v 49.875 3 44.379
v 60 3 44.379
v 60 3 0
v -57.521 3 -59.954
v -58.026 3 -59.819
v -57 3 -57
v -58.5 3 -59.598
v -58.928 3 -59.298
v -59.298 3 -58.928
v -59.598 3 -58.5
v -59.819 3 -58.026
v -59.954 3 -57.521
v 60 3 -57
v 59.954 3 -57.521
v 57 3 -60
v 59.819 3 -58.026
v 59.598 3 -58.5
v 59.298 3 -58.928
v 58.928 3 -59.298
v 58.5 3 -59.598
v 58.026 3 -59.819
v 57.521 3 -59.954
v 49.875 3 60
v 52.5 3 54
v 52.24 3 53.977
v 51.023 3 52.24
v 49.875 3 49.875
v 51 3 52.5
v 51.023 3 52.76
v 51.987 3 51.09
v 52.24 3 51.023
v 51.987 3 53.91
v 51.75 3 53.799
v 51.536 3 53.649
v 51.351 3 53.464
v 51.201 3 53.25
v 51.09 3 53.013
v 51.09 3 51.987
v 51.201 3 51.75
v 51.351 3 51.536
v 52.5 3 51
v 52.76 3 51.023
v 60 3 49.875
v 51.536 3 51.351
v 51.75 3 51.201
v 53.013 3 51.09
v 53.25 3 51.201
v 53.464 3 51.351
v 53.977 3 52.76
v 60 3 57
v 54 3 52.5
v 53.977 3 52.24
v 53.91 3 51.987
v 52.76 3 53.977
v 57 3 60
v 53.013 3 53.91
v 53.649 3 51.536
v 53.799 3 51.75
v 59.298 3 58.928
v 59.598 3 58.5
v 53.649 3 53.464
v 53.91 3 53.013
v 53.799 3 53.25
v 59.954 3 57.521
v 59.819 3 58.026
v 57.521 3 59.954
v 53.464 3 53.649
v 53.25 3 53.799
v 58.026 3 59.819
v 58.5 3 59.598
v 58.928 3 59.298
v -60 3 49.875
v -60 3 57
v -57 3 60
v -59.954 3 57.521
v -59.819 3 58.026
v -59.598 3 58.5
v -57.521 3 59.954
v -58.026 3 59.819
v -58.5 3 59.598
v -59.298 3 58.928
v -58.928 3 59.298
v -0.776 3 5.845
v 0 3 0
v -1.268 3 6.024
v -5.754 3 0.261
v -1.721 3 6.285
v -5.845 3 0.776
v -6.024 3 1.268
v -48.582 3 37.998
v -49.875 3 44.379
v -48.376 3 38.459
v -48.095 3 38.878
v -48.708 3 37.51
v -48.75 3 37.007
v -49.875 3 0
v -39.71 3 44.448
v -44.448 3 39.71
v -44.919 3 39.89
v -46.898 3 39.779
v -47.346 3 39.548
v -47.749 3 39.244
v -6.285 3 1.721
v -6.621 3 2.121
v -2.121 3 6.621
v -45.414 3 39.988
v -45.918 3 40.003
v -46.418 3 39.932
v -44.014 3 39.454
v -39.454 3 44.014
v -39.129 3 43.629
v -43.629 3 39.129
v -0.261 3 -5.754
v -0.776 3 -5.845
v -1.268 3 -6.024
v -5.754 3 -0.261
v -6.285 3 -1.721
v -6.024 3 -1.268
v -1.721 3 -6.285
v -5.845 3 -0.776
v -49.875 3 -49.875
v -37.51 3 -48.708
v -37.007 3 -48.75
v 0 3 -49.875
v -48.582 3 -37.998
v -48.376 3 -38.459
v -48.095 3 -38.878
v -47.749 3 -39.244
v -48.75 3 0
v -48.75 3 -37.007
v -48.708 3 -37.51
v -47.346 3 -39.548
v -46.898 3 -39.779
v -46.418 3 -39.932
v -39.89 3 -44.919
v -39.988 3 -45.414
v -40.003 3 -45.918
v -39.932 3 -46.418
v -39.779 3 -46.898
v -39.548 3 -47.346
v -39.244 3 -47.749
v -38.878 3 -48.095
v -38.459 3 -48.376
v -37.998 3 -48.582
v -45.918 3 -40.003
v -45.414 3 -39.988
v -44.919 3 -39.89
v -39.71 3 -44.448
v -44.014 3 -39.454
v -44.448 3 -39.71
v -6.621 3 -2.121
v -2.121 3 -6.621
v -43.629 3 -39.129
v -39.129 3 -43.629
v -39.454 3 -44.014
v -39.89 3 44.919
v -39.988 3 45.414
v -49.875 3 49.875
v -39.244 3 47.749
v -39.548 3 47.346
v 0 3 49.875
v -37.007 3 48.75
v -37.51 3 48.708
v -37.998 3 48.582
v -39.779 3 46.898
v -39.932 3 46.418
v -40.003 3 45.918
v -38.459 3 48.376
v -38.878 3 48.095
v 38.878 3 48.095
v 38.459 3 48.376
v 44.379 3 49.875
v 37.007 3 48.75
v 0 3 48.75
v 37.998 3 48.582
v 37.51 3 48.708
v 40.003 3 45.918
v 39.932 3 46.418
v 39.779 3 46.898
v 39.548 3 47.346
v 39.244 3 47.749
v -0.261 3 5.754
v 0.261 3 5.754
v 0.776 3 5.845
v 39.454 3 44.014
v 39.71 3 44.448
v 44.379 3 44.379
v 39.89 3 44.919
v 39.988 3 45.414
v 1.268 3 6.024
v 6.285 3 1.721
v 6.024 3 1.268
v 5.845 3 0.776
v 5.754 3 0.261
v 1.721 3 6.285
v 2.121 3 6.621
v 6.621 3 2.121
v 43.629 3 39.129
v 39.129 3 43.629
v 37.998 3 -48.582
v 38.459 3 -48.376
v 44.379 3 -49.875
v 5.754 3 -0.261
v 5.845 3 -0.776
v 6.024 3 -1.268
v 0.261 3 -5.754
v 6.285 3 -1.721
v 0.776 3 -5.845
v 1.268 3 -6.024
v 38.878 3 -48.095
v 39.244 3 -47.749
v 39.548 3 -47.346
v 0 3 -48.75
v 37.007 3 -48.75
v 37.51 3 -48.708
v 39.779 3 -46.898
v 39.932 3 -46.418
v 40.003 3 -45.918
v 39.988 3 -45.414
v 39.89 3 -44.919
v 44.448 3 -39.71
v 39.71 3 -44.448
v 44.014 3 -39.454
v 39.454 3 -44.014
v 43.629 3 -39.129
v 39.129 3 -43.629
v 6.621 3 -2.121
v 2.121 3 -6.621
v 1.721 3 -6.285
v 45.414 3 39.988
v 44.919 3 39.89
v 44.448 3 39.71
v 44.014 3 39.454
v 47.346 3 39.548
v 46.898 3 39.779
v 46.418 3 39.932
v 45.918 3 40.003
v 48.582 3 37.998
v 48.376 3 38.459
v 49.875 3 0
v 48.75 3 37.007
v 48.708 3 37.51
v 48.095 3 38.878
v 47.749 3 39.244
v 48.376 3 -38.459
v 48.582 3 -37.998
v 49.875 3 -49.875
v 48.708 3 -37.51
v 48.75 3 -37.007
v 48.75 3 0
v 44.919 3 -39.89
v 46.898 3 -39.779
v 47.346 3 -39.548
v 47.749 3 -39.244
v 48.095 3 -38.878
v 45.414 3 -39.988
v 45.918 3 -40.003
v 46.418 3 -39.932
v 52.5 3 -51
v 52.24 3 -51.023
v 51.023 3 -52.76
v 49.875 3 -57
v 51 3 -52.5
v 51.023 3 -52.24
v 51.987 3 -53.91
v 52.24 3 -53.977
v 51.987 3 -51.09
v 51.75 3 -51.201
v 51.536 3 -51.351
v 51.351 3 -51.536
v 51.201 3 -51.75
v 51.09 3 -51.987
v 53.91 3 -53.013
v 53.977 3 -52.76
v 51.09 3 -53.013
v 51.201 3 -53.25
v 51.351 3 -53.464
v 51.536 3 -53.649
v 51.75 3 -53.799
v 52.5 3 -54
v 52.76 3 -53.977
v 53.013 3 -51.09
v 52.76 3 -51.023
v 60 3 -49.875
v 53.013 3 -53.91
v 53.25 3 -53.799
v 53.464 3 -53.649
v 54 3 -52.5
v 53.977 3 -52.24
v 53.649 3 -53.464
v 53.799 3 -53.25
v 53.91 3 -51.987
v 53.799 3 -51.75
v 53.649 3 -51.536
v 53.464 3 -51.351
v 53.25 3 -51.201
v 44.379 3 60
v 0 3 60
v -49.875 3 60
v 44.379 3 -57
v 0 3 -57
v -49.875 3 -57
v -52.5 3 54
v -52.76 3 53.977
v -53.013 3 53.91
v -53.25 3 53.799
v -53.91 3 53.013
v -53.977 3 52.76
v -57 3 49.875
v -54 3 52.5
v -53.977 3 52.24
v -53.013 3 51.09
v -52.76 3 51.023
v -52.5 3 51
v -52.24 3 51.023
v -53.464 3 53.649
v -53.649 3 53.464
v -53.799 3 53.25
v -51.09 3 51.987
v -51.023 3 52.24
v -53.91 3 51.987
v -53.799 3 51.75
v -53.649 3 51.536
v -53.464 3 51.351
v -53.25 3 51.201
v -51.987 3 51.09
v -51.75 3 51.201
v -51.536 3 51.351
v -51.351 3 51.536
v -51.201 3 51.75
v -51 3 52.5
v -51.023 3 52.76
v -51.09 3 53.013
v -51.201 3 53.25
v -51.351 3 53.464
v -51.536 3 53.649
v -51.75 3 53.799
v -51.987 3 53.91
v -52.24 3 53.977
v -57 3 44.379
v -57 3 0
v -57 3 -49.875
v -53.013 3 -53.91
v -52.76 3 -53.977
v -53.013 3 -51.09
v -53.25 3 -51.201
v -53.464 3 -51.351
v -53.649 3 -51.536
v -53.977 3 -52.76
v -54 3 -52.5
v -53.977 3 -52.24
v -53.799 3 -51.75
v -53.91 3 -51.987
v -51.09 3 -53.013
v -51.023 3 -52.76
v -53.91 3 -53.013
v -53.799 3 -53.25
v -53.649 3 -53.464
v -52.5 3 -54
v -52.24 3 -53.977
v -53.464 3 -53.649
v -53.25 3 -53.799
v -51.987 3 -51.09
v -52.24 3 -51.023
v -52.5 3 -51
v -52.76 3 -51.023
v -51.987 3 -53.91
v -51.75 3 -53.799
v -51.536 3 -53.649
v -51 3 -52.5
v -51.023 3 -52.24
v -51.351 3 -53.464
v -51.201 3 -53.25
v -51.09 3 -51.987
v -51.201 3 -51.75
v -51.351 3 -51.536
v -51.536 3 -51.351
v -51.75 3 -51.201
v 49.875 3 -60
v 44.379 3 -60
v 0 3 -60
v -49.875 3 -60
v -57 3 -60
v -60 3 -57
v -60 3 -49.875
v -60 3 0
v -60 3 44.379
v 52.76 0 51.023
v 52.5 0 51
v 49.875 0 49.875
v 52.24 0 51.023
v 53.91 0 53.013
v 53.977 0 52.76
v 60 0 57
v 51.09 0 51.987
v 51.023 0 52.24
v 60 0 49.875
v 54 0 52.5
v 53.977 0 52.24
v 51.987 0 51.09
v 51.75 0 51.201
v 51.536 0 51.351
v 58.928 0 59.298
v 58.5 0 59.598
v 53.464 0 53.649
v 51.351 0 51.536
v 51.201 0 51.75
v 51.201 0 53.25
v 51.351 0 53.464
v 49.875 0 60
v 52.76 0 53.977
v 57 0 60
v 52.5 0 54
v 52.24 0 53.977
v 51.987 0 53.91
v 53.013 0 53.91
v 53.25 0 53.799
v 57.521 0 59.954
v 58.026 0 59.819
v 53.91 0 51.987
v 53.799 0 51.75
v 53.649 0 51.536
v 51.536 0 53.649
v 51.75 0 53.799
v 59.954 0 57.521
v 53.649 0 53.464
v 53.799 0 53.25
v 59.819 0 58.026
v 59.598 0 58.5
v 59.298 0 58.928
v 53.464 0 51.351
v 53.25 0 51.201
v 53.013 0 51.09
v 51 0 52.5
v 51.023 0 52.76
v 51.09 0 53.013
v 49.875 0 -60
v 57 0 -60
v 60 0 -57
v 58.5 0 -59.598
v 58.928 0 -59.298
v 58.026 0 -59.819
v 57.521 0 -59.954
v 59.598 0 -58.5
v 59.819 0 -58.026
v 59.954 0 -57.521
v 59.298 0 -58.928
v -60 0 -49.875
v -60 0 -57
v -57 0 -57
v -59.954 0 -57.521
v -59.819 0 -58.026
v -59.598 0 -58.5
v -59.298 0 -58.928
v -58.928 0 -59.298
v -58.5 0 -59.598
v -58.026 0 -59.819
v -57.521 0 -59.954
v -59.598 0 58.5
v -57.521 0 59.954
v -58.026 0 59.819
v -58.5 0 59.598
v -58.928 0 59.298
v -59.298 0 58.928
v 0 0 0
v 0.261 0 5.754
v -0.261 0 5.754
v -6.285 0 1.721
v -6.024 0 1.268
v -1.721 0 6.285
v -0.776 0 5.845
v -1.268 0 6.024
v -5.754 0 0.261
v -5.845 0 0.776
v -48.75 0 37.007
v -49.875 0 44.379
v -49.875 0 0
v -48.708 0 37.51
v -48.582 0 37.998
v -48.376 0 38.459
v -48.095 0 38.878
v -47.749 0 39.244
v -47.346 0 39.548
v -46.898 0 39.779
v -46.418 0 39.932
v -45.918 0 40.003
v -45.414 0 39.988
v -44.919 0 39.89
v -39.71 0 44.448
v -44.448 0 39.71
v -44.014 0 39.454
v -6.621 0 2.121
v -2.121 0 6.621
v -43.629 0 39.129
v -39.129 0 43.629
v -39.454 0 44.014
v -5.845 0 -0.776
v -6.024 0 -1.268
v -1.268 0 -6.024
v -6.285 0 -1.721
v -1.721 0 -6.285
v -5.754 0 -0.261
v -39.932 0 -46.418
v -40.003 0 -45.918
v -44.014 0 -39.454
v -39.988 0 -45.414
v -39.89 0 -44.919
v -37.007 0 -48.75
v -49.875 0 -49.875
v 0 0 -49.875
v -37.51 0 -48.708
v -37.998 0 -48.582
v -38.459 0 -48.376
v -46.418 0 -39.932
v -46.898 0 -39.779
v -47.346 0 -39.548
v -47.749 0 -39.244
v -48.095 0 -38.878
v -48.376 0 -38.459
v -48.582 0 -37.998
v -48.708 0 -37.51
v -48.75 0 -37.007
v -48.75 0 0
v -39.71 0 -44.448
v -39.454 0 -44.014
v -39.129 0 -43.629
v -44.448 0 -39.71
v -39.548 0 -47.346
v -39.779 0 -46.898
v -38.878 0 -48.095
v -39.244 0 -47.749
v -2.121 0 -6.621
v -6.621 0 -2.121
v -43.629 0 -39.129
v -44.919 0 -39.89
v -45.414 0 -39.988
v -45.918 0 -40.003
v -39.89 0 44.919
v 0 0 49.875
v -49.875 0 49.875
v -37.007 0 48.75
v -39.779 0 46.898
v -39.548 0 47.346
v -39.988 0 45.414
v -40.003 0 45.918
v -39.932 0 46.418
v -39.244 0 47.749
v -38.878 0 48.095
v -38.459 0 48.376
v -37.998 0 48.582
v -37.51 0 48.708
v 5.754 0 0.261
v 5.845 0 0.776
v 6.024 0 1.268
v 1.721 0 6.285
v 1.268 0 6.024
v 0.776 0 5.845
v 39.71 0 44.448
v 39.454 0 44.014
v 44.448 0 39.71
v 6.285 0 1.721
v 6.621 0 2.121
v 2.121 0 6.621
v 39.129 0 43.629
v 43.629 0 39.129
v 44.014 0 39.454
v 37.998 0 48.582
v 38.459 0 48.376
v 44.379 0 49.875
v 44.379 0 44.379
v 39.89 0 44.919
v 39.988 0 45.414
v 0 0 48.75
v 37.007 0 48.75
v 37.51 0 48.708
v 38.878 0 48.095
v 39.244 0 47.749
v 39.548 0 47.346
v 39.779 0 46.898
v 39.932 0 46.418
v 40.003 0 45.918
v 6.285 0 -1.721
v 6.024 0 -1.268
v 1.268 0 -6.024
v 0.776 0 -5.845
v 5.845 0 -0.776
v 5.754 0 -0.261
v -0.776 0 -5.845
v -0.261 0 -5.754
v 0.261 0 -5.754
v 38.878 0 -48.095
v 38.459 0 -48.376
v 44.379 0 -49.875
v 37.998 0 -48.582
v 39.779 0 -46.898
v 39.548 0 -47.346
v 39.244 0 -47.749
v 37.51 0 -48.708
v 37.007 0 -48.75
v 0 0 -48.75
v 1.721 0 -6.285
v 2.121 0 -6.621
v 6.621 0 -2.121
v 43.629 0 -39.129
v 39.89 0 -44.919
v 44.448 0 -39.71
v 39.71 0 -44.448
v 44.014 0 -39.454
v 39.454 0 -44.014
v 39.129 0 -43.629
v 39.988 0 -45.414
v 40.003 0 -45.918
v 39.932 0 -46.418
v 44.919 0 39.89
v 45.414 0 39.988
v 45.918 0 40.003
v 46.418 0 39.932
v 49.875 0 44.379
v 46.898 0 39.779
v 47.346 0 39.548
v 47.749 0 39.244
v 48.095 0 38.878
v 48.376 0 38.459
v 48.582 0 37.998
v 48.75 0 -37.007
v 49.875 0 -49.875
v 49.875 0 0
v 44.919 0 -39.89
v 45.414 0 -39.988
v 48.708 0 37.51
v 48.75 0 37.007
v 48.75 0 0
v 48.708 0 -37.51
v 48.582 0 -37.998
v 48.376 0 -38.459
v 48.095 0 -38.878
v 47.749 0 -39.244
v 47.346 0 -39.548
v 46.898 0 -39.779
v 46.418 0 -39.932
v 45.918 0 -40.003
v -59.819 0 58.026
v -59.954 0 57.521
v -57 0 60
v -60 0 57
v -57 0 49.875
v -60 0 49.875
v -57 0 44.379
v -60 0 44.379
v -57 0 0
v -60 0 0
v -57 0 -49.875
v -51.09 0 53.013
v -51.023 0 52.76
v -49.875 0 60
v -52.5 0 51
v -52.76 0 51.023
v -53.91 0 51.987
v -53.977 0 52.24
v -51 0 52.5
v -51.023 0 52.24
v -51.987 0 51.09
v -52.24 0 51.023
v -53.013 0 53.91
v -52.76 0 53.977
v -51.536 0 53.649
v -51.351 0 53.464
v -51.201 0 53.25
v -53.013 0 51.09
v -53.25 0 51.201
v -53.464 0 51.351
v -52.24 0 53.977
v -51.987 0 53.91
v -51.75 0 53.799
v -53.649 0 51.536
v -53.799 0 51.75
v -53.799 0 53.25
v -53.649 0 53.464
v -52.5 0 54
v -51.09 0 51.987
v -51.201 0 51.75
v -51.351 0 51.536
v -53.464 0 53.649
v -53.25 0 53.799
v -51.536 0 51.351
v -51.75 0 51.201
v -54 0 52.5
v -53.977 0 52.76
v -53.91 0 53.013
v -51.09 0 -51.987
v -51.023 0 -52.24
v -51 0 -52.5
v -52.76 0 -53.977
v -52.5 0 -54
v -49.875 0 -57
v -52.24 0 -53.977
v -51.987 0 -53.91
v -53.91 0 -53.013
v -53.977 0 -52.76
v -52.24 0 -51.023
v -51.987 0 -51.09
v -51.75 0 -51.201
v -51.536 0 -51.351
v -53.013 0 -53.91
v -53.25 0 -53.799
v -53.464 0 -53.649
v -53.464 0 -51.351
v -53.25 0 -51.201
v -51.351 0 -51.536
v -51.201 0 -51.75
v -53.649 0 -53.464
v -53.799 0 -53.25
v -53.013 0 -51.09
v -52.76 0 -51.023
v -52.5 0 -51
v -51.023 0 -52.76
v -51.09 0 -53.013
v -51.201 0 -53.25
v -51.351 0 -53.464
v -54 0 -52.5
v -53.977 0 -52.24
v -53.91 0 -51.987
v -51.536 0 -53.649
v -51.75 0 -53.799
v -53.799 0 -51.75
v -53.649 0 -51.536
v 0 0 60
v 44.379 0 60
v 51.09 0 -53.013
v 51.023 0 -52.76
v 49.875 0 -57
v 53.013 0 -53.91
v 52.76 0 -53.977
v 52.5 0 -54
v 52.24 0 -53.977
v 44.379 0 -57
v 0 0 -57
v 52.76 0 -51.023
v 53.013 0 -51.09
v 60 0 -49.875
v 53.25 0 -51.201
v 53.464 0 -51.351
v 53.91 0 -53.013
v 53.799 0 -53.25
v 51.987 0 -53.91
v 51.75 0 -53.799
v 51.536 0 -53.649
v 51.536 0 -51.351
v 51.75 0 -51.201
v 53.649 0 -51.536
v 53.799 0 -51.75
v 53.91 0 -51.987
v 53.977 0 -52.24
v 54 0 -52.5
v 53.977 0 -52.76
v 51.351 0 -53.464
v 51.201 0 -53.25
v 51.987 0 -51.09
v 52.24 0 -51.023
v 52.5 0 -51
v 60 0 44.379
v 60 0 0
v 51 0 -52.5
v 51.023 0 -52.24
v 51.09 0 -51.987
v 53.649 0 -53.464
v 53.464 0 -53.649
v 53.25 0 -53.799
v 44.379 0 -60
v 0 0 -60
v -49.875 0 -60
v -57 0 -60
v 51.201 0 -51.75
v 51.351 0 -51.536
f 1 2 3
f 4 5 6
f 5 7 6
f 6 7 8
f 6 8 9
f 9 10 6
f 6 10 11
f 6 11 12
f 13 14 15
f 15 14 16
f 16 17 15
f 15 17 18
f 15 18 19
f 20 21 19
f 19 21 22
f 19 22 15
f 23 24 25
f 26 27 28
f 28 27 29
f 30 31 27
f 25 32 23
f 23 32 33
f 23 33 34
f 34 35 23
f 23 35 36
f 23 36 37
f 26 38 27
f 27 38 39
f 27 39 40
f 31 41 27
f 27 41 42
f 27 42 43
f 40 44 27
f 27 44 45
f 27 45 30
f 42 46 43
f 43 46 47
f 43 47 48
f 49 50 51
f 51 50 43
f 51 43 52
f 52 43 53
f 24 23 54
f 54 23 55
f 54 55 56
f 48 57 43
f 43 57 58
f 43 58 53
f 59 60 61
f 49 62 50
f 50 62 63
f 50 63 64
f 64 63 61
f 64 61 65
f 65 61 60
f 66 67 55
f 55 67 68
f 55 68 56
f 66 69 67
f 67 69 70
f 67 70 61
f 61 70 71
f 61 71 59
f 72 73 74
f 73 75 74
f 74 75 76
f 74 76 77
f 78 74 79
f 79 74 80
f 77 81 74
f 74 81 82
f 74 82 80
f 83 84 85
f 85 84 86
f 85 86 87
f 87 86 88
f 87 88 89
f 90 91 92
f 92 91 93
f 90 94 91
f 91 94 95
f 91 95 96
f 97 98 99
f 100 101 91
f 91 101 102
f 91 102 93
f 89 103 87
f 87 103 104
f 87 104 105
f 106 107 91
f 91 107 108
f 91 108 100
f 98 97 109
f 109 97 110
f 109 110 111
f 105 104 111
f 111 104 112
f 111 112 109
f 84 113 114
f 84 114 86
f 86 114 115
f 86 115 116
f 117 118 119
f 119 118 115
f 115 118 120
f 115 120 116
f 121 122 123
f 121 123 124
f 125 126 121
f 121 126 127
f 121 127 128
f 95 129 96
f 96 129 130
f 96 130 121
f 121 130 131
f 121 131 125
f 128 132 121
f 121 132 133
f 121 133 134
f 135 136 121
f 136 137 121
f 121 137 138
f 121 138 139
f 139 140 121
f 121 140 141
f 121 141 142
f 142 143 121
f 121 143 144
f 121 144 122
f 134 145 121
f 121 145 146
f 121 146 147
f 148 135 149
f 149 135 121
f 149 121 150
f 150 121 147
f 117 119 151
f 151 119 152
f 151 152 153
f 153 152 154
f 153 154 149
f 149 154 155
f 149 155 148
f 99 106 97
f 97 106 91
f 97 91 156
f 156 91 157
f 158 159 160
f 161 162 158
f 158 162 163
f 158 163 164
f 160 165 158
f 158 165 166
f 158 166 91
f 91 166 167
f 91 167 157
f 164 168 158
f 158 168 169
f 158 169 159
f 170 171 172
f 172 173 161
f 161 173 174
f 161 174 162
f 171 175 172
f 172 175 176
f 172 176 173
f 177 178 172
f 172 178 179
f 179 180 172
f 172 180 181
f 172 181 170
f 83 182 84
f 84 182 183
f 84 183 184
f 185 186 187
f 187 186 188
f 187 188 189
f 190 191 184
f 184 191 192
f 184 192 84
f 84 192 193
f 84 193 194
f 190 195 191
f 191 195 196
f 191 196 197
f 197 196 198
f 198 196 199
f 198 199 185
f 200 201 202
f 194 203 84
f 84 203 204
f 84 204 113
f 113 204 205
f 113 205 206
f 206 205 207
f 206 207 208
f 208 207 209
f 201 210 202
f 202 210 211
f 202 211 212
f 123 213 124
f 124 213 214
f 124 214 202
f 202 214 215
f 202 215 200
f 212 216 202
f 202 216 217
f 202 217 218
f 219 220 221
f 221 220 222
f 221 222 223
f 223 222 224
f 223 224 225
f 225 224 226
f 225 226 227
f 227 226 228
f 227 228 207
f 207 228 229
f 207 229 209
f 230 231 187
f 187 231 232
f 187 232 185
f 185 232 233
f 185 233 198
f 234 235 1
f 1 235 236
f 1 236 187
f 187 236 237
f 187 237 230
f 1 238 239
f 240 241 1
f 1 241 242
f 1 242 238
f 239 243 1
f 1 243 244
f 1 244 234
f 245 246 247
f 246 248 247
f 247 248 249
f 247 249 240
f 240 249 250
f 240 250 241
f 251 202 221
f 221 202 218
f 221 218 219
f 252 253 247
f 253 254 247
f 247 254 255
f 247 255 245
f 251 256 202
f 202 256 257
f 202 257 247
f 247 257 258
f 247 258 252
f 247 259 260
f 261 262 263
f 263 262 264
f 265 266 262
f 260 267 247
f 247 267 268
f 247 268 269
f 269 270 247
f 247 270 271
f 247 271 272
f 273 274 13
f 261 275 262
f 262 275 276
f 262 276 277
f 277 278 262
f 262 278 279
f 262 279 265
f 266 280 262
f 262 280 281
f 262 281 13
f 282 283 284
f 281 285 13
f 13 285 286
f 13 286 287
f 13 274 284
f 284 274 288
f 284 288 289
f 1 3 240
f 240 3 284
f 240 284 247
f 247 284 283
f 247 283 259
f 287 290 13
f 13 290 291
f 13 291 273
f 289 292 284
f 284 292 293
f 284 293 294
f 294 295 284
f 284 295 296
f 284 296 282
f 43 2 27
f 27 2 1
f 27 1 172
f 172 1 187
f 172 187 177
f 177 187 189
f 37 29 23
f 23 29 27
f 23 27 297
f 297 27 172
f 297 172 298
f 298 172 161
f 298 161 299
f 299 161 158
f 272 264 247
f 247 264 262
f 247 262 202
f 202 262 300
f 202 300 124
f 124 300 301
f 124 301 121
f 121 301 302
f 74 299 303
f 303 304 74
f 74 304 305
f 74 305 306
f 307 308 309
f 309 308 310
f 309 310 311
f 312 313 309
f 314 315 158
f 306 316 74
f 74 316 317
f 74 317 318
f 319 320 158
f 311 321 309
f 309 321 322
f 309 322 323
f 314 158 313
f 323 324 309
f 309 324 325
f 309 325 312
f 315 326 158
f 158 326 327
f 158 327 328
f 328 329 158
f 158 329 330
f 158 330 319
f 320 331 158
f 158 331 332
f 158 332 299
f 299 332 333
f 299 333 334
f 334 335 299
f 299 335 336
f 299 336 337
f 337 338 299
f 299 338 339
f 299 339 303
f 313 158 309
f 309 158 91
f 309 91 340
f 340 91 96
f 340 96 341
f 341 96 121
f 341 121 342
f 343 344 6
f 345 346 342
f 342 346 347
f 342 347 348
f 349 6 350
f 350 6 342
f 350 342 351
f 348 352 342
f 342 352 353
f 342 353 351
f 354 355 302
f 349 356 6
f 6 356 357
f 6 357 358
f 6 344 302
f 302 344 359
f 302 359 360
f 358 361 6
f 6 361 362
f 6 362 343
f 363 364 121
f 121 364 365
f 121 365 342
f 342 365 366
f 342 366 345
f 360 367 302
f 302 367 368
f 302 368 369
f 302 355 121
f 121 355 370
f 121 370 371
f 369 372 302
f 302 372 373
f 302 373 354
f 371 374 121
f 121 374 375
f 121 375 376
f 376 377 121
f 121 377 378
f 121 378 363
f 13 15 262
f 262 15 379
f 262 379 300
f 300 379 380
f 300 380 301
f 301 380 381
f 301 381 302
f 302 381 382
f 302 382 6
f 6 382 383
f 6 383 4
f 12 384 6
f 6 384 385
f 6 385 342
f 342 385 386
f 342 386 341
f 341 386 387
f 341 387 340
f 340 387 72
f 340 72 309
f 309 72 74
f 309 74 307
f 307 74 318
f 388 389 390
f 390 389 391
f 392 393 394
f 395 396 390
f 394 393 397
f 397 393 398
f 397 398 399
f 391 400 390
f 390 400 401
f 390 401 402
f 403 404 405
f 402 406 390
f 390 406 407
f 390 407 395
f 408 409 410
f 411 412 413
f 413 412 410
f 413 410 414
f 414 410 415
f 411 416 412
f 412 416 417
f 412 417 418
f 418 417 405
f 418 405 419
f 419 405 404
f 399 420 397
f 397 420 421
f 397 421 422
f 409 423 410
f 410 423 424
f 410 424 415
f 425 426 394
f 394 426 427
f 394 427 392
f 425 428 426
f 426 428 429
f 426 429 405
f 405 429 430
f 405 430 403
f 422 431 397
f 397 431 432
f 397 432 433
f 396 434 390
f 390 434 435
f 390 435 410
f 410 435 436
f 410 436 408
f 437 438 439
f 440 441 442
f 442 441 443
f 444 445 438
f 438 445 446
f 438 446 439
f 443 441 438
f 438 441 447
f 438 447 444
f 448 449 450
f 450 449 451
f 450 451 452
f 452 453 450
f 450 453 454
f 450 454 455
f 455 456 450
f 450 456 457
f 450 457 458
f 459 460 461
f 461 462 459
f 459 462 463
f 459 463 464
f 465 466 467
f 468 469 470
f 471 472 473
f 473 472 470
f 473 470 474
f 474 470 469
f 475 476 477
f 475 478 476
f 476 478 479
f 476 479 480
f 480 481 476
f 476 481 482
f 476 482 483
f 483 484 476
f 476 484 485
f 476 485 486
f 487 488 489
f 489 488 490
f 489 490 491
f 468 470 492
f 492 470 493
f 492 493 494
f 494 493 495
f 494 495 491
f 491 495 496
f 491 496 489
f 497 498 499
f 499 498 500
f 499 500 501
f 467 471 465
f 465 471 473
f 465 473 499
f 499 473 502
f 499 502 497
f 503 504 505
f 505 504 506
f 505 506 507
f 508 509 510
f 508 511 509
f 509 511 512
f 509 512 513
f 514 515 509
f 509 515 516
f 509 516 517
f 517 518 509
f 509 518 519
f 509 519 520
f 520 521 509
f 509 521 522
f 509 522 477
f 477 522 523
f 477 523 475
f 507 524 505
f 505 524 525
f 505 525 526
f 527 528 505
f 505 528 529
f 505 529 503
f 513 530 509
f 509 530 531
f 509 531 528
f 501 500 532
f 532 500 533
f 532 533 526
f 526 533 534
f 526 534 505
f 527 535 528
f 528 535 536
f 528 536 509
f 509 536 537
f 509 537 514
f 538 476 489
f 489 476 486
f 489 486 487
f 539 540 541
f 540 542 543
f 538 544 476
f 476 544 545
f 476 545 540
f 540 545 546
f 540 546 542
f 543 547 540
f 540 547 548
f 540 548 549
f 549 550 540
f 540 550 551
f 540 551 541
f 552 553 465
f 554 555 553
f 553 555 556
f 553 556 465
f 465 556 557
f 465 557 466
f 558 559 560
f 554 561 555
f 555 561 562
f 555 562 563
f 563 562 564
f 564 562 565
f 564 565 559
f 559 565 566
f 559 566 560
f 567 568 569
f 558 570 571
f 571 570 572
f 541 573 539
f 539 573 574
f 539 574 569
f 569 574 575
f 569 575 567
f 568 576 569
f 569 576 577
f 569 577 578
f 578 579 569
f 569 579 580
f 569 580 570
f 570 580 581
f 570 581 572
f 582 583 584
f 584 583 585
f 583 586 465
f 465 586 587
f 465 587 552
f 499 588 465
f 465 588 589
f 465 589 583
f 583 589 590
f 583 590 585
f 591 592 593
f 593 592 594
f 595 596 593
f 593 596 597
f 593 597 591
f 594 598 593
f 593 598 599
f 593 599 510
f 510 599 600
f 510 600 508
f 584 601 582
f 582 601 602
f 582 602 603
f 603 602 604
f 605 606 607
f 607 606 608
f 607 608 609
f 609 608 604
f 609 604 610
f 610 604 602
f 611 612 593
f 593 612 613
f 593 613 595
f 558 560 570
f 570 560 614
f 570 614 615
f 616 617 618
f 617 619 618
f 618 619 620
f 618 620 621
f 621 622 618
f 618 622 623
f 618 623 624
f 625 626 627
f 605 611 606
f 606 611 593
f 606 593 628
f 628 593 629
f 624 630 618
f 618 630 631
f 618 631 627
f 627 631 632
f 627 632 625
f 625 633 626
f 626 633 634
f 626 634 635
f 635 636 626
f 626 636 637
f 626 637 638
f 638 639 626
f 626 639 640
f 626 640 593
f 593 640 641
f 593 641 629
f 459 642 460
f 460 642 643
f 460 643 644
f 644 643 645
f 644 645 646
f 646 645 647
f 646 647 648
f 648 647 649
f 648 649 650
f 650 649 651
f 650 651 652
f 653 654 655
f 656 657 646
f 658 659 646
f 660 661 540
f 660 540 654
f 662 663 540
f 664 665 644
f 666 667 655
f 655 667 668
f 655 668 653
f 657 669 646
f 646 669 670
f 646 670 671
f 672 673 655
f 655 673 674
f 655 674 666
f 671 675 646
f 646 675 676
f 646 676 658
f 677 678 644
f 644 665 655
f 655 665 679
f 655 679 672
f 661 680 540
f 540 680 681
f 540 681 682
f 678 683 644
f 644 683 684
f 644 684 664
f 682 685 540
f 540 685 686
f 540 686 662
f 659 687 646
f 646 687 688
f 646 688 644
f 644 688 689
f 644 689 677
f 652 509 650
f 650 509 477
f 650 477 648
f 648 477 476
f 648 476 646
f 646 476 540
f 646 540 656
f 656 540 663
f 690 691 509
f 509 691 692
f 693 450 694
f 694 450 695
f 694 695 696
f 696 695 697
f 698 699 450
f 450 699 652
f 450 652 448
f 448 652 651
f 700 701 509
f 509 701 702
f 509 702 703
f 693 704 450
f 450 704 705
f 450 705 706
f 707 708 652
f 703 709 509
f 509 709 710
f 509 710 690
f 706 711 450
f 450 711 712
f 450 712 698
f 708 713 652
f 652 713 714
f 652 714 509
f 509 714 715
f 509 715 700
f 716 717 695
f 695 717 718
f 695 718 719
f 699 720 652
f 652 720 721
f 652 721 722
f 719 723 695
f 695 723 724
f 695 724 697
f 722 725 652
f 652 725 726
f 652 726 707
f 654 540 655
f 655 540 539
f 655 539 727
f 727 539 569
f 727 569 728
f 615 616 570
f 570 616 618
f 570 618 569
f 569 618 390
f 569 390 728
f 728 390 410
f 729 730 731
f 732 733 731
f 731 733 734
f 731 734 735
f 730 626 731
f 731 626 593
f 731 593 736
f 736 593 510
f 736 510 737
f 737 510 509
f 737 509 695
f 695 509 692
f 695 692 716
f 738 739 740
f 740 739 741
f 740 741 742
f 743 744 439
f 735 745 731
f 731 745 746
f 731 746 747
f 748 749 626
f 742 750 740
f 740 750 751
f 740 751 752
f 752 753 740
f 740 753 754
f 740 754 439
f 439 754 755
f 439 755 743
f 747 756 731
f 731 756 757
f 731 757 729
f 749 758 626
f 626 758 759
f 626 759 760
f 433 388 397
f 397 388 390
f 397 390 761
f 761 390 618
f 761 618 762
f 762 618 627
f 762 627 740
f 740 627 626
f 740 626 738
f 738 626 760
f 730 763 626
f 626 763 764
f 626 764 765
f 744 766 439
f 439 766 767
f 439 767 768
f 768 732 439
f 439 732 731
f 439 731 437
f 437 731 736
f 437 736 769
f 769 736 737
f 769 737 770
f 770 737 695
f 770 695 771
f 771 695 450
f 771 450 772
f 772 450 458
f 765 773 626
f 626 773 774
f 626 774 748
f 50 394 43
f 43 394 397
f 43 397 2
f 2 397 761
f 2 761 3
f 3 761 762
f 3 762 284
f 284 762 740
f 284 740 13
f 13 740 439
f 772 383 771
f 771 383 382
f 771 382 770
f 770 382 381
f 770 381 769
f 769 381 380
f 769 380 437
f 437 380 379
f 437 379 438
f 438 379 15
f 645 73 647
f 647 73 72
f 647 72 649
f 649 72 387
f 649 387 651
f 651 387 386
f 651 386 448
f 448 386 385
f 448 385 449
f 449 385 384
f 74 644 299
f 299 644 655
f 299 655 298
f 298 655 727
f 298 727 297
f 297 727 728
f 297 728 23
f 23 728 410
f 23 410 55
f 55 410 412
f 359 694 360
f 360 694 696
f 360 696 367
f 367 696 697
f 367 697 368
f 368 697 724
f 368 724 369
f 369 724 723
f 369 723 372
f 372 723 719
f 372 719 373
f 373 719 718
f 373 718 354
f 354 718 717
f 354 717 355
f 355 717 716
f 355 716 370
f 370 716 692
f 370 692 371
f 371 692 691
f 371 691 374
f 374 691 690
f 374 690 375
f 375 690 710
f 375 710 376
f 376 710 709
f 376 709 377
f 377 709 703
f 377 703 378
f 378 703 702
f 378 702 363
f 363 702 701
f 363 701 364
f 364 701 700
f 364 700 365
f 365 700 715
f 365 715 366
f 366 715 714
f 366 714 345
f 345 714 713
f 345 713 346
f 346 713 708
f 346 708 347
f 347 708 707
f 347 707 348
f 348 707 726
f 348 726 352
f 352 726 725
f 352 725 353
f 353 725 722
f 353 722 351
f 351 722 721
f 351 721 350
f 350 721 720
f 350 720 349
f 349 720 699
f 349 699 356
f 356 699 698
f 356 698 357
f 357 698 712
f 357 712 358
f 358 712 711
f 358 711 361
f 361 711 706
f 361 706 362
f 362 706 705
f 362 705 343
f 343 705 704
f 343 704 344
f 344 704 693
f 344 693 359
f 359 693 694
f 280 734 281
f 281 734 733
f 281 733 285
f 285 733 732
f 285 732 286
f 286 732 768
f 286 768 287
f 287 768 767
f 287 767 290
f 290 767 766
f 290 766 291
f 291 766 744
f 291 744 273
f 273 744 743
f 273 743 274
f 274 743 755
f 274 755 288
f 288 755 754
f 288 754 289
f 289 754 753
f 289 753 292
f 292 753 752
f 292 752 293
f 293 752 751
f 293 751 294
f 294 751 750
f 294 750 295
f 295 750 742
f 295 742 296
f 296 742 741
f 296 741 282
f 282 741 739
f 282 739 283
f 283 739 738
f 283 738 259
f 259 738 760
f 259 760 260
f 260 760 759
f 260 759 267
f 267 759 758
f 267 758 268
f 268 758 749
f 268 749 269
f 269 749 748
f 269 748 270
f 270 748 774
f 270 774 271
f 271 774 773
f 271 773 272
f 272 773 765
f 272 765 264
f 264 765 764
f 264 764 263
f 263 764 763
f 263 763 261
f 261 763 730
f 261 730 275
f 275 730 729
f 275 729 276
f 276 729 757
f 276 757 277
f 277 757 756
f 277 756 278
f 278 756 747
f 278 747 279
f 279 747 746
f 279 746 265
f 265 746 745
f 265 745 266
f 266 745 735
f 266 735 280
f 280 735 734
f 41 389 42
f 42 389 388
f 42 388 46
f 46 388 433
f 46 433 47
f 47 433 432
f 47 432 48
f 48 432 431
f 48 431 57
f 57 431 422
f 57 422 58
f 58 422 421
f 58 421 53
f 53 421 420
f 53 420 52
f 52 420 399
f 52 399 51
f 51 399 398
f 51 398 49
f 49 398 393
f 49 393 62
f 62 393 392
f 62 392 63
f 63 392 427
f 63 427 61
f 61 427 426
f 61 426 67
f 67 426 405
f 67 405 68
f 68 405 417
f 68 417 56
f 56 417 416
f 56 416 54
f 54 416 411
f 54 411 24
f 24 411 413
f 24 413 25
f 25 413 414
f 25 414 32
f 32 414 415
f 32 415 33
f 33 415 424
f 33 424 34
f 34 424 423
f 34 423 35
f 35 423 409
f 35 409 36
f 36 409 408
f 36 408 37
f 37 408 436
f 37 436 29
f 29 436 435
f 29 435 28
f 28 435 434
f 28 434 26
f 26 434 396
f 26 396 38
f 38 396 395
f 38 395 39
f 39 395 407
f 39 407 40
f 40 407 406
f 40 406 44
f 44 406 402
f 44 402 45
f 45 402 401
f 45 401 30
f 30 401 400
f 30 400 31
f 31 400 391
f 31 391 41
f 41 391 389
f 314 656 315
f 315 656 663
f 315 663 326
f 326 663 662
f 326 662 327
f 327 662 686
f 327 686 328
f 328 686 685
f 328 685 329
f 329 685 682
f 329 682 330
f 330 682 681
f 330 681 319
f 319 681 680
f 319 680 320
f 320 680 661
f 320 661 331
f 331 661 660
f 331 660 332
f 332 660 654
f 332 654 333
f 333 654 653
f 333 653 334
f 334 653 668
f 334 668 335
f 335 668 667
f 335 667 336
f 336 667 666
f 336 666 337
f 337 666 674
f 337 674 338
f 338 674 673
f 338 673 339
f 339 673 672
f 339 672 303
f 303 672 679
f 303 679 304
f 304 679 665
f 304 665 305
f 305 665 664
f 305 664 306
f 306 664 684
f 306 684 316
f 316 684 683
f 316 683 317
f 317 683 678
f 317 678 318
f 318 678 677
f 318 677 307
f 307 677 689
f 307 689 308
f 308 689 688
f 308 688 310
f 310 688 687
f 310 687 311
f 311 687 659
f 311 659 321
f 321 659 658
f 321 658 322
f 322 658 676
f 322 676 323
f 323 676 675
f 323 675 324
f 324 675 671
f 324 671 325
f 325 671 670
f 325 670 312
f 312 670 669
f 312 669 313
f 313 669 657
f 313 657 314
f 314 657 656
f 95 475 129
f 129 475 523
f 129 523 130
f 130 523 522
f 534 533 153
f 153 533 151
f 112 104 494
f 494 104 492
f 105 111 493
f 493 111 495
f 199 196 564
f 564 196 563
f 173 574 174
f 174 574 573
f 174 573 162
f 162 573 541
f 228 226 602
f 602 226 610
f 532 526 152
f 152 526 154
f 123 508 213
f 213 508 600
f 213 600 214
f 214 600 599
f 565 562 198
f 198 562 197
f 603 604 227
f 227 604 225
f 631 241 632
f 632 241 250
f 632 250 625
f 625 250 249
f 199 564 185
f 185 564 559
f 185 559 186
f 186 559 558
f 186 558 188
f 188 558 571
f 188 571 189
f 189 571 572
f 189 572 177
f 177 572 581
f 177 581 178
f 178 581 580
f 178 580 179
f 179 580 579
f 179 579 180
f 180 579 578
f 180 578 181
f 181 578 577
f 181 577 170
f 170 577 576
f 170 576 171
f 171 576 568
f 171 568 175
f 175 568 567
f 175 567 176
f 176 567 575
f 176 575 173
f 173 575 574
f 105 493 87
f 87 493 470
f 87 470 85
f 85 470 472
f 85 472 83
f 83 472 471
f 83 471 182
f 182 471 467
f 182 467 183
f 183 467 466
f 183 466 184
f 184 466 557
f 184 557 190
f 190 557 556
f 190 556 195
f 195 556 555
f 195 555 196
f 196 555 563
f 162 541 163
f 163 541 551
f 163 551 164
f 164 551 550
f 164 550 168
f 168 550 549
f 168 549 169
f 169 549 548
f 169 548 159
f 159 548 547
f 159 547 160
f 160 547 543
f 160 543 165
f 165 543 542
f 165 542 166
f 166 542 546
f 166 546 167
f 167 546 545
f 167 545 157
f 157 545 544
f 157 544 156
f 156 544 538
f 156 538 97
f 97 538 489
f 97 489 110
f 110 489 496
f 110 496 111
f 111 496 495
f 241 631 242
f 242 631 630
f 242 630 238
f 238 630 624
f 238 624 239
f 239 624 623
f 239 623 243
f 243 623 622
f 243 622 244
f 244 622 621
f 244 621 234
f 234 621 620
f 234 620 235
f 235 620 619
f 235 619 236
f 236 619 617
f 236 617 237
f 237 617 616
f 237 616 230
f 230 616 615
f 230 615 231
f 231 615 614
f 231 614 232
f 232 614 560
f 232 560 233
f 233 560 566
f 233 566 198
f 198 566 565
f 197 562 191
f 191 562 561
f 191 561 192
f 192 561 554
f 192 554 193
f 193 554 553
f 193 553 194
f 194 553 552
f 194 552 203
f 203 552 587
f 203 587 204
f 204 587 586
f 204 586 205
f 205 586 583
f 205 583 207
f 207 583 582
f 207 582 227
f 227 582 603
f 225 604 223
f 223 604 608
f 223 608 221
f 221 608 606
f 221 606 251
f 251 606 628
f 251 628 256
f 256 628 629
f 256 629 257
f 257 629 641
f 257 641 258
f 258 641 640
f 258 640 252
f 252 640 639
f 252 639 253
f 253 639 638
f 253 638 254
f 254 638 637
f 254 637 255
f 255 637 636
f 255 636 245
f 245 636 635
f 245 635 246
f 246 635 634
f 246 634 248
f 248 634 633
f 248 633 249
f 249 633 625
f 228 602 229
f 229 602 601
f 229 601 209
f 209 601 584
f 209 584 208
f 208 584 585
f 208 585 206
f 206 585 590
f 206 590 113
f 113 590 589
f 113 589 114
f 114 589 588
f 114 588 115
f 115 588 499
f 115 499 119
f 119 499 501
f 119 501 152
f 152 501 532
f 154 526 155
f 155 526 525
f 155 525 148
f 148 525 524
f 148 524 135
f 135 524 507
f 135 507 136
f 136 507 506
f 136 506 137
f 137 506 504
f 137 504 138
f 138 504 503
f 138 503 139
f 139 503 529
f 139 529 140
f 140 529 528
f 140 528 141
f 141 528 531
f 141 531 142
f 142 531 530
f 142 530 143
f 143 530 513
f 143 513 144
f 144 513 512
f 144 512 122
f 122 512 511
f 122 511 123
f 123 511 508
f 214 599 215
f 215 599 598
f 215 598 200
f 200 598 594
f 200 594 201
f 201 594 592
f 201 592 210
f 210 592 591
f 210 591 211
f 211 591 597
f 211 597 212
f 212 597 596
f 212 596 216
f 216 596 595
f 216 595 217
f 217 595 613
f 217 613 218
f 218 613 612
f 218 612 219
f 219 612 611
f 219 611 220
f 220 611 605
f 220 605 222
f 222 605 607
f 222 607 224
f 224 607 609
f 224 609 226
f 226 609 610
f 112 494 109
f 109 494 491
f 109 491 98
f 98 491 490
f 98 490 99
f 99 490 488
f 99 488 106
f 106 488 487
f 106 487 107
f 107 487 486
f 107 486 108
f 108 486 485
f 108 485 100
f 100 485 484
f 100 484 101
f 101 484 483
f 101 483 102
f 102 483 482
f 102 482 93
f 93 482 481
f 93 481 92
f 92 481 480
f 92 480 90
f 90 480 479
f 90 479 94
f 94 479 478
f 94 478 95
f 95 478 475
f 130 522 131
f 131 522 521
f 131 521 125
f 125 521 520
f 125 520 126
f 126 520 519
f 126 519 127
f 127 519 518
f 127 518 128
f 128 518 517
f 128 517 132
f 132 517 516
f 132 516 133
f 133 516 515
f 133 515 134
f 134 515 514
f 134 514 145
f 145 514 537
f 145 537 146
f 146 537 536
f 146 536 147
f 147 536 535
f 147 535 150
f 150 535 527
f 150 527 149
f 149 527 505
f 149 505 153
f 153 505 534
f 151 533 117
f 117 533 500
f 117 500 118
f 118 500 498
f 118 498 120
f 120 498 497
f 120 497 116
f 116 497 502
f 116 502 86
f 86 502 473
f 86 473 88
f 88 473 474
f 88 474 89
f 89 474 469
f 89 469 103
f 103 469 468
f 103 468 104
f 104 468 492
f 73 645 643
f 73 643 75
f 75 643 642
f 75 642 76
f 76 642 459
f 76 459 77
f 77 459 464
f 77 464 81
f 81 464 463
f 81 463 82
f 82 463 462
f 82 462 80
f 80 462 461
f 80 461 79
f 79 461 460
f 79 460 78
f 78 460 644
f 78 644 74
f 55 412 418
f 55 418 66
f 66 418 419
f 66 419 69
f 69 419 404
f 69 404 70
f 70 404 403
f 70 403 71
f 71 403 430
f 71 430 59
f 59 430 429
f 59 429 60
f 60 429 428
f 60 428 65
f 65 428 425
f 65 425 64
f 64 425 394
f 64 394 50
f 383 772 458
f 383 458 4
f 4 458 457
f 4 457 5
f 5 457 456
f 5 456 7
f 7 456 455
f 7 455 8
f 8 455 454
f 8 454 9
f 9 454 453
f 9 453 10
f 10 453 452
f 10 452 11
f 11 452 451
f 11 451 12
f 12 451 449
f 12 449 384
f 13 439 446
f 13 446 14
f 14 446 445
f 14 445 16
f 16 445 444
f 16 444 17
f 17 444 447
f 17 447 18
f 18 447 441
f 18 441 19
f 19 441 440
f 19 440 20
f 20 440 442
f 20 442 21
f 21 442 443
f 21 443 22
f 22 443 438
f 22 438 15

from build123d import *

# Parameters (mm, degrees)
SKETCH_1_R      = 1.5
EXTRUDE_1_DEPTH = 3


with BuildPart() as part:
    # 草圖1 → 填料-伸長1 (new body)
    with BuildSketch(Plane(origin=(0, 3, 0), x_dir=(1, 0, 0), z_dir=(0, 1, 0))):
        with BuildLine():
            Line((-60, 57), (-60, -57))
            ThreePointArc((-60, -57), (-59.121320344, -59.121320344), (-57, -60))
            Line((-57, -60), (57, -60))
            ThreePointArc((57, -60), (59.121320344, -59.121320344), (60, -57))
            Line((60, -57), (60, 57))
            ThreePointArc((60, 57), (59.121320344, 59.121320344), (57, 60))
            Line((57, 60), (-57, 60))
            ThreePointArc((-57, 60), (-59.121320344, 59.121320344), (-60, 57))
        make_face()
        with Locations((52.5, -52.5)):
            Circle(SKETCH_1_R, mode=Mode.SUBTRACT)
        with Locations((-52.5, 52.5)):
            Circle(SKETCH_1_R, mode=Mode.SUBTRACT)
        with Locations((52.5, 52.5)):
            Circle(SKETCH_1_R, mode=Mode.SUBTRACT)
        with Locations((-52.5, -52.5)):
            Circle(SKETCH_1_R, mode=Mode.SUBTRACT)
        with BuildLine():
            Line((43.628679656, -39.128679656), (6.621320344, -2.121320344))
            ThreePointArc((6.621320344, -2.121320344), (5.742640687, 0), (6.621320344, 2.121320344))
            Line((6.621320344, 2.121320344), (43.628679656, 39.128679656))
            ThreePointArc((43.628679656, 39.128679656), (46.898050297, 39.77899791), (48.75, 37.007359313))
            Line((48.75, 37.007359313), (48.75, -37.007359313))
            ThreePointArc((48.75, -37.007359313), (46.898050297, -39.77899791), (43.628679656, -39.128679656))
        make_face(mode=Mode.SUBTRACT)
        with BuildLine():
            Line((39.128679656, 43.628679656), (2.121320344, 6.621320344))
            ThreePointArc((2.121320344, 6.621320344), (0, 5.742640687), (-2.121320344, 6.621320344))
            Line((-2.121320344, 6.621320344), (-39.128679656, 43.628679656))
            ThreePointArc((-39.128679656, 43.628679656), (-39.77899791, 46.898050297), (-37.007359313, 48.75))
            Line((-37.007359313, 48.75), (37.007359313, 48.75))
            ThreePointArc((37.007359313, 48.75), (39.77899791, 46.898050297), (39.128679656, 43.628679656))
        make_face(mode=Mode.SUBTRACT)
        with BuildLine():
            Line((-39.128679656, -43.628679656), (-2.121320344, -6.621320344))
            ThreePointArc((-2.121320344, -6.621320344), (0, -5.742640687), (2.121320344, -6.621320344))
            Line((2.121320344, -6.621320344), (39.128679656, -43.628679656))
            ThreePointArc((39.128679656, -43.628679656), (39.77899791, -46.898050297), (37.007359313, -48.75))
            Line((37.007359313, -48.75), (-37.007359313, -48.75))
            ThreePointArc((-37.007359313, -48.75), (-39.77899791, -46.898050297), (-39.128679656, -43.628679656))
        make_face(mode=Mode.SUBTRACT)
        with BuildLine():
            Line((-48.75, -37.007359313), (-48.75, 37.007359313))
            ThreePointArc((-48.75, 37.007359313), (-46.898050297, 39.77899791), (-43.628679656, 39.128679656))
            Line((-43.628679656, 39.128679656), (-6.621320344, 2.121320344))
            ThreePointArc((-6.621320344, 2.121320344), (-5.742640687, 0), (-6.621320344, -2.121320344))
            Line((-6.621320344, -2.121320344), (-43.628679656, -39.128679656))
            ThreePointArc((-43.628679656, -39.128679656), (-46.898050297, -39.77899791), (-48.75, -37.007359313))
        make_face(mode=Mode.SUBTRACT)
    extrude(amount=-EXTRUDE_1_DEPTH)


solid = part.part
